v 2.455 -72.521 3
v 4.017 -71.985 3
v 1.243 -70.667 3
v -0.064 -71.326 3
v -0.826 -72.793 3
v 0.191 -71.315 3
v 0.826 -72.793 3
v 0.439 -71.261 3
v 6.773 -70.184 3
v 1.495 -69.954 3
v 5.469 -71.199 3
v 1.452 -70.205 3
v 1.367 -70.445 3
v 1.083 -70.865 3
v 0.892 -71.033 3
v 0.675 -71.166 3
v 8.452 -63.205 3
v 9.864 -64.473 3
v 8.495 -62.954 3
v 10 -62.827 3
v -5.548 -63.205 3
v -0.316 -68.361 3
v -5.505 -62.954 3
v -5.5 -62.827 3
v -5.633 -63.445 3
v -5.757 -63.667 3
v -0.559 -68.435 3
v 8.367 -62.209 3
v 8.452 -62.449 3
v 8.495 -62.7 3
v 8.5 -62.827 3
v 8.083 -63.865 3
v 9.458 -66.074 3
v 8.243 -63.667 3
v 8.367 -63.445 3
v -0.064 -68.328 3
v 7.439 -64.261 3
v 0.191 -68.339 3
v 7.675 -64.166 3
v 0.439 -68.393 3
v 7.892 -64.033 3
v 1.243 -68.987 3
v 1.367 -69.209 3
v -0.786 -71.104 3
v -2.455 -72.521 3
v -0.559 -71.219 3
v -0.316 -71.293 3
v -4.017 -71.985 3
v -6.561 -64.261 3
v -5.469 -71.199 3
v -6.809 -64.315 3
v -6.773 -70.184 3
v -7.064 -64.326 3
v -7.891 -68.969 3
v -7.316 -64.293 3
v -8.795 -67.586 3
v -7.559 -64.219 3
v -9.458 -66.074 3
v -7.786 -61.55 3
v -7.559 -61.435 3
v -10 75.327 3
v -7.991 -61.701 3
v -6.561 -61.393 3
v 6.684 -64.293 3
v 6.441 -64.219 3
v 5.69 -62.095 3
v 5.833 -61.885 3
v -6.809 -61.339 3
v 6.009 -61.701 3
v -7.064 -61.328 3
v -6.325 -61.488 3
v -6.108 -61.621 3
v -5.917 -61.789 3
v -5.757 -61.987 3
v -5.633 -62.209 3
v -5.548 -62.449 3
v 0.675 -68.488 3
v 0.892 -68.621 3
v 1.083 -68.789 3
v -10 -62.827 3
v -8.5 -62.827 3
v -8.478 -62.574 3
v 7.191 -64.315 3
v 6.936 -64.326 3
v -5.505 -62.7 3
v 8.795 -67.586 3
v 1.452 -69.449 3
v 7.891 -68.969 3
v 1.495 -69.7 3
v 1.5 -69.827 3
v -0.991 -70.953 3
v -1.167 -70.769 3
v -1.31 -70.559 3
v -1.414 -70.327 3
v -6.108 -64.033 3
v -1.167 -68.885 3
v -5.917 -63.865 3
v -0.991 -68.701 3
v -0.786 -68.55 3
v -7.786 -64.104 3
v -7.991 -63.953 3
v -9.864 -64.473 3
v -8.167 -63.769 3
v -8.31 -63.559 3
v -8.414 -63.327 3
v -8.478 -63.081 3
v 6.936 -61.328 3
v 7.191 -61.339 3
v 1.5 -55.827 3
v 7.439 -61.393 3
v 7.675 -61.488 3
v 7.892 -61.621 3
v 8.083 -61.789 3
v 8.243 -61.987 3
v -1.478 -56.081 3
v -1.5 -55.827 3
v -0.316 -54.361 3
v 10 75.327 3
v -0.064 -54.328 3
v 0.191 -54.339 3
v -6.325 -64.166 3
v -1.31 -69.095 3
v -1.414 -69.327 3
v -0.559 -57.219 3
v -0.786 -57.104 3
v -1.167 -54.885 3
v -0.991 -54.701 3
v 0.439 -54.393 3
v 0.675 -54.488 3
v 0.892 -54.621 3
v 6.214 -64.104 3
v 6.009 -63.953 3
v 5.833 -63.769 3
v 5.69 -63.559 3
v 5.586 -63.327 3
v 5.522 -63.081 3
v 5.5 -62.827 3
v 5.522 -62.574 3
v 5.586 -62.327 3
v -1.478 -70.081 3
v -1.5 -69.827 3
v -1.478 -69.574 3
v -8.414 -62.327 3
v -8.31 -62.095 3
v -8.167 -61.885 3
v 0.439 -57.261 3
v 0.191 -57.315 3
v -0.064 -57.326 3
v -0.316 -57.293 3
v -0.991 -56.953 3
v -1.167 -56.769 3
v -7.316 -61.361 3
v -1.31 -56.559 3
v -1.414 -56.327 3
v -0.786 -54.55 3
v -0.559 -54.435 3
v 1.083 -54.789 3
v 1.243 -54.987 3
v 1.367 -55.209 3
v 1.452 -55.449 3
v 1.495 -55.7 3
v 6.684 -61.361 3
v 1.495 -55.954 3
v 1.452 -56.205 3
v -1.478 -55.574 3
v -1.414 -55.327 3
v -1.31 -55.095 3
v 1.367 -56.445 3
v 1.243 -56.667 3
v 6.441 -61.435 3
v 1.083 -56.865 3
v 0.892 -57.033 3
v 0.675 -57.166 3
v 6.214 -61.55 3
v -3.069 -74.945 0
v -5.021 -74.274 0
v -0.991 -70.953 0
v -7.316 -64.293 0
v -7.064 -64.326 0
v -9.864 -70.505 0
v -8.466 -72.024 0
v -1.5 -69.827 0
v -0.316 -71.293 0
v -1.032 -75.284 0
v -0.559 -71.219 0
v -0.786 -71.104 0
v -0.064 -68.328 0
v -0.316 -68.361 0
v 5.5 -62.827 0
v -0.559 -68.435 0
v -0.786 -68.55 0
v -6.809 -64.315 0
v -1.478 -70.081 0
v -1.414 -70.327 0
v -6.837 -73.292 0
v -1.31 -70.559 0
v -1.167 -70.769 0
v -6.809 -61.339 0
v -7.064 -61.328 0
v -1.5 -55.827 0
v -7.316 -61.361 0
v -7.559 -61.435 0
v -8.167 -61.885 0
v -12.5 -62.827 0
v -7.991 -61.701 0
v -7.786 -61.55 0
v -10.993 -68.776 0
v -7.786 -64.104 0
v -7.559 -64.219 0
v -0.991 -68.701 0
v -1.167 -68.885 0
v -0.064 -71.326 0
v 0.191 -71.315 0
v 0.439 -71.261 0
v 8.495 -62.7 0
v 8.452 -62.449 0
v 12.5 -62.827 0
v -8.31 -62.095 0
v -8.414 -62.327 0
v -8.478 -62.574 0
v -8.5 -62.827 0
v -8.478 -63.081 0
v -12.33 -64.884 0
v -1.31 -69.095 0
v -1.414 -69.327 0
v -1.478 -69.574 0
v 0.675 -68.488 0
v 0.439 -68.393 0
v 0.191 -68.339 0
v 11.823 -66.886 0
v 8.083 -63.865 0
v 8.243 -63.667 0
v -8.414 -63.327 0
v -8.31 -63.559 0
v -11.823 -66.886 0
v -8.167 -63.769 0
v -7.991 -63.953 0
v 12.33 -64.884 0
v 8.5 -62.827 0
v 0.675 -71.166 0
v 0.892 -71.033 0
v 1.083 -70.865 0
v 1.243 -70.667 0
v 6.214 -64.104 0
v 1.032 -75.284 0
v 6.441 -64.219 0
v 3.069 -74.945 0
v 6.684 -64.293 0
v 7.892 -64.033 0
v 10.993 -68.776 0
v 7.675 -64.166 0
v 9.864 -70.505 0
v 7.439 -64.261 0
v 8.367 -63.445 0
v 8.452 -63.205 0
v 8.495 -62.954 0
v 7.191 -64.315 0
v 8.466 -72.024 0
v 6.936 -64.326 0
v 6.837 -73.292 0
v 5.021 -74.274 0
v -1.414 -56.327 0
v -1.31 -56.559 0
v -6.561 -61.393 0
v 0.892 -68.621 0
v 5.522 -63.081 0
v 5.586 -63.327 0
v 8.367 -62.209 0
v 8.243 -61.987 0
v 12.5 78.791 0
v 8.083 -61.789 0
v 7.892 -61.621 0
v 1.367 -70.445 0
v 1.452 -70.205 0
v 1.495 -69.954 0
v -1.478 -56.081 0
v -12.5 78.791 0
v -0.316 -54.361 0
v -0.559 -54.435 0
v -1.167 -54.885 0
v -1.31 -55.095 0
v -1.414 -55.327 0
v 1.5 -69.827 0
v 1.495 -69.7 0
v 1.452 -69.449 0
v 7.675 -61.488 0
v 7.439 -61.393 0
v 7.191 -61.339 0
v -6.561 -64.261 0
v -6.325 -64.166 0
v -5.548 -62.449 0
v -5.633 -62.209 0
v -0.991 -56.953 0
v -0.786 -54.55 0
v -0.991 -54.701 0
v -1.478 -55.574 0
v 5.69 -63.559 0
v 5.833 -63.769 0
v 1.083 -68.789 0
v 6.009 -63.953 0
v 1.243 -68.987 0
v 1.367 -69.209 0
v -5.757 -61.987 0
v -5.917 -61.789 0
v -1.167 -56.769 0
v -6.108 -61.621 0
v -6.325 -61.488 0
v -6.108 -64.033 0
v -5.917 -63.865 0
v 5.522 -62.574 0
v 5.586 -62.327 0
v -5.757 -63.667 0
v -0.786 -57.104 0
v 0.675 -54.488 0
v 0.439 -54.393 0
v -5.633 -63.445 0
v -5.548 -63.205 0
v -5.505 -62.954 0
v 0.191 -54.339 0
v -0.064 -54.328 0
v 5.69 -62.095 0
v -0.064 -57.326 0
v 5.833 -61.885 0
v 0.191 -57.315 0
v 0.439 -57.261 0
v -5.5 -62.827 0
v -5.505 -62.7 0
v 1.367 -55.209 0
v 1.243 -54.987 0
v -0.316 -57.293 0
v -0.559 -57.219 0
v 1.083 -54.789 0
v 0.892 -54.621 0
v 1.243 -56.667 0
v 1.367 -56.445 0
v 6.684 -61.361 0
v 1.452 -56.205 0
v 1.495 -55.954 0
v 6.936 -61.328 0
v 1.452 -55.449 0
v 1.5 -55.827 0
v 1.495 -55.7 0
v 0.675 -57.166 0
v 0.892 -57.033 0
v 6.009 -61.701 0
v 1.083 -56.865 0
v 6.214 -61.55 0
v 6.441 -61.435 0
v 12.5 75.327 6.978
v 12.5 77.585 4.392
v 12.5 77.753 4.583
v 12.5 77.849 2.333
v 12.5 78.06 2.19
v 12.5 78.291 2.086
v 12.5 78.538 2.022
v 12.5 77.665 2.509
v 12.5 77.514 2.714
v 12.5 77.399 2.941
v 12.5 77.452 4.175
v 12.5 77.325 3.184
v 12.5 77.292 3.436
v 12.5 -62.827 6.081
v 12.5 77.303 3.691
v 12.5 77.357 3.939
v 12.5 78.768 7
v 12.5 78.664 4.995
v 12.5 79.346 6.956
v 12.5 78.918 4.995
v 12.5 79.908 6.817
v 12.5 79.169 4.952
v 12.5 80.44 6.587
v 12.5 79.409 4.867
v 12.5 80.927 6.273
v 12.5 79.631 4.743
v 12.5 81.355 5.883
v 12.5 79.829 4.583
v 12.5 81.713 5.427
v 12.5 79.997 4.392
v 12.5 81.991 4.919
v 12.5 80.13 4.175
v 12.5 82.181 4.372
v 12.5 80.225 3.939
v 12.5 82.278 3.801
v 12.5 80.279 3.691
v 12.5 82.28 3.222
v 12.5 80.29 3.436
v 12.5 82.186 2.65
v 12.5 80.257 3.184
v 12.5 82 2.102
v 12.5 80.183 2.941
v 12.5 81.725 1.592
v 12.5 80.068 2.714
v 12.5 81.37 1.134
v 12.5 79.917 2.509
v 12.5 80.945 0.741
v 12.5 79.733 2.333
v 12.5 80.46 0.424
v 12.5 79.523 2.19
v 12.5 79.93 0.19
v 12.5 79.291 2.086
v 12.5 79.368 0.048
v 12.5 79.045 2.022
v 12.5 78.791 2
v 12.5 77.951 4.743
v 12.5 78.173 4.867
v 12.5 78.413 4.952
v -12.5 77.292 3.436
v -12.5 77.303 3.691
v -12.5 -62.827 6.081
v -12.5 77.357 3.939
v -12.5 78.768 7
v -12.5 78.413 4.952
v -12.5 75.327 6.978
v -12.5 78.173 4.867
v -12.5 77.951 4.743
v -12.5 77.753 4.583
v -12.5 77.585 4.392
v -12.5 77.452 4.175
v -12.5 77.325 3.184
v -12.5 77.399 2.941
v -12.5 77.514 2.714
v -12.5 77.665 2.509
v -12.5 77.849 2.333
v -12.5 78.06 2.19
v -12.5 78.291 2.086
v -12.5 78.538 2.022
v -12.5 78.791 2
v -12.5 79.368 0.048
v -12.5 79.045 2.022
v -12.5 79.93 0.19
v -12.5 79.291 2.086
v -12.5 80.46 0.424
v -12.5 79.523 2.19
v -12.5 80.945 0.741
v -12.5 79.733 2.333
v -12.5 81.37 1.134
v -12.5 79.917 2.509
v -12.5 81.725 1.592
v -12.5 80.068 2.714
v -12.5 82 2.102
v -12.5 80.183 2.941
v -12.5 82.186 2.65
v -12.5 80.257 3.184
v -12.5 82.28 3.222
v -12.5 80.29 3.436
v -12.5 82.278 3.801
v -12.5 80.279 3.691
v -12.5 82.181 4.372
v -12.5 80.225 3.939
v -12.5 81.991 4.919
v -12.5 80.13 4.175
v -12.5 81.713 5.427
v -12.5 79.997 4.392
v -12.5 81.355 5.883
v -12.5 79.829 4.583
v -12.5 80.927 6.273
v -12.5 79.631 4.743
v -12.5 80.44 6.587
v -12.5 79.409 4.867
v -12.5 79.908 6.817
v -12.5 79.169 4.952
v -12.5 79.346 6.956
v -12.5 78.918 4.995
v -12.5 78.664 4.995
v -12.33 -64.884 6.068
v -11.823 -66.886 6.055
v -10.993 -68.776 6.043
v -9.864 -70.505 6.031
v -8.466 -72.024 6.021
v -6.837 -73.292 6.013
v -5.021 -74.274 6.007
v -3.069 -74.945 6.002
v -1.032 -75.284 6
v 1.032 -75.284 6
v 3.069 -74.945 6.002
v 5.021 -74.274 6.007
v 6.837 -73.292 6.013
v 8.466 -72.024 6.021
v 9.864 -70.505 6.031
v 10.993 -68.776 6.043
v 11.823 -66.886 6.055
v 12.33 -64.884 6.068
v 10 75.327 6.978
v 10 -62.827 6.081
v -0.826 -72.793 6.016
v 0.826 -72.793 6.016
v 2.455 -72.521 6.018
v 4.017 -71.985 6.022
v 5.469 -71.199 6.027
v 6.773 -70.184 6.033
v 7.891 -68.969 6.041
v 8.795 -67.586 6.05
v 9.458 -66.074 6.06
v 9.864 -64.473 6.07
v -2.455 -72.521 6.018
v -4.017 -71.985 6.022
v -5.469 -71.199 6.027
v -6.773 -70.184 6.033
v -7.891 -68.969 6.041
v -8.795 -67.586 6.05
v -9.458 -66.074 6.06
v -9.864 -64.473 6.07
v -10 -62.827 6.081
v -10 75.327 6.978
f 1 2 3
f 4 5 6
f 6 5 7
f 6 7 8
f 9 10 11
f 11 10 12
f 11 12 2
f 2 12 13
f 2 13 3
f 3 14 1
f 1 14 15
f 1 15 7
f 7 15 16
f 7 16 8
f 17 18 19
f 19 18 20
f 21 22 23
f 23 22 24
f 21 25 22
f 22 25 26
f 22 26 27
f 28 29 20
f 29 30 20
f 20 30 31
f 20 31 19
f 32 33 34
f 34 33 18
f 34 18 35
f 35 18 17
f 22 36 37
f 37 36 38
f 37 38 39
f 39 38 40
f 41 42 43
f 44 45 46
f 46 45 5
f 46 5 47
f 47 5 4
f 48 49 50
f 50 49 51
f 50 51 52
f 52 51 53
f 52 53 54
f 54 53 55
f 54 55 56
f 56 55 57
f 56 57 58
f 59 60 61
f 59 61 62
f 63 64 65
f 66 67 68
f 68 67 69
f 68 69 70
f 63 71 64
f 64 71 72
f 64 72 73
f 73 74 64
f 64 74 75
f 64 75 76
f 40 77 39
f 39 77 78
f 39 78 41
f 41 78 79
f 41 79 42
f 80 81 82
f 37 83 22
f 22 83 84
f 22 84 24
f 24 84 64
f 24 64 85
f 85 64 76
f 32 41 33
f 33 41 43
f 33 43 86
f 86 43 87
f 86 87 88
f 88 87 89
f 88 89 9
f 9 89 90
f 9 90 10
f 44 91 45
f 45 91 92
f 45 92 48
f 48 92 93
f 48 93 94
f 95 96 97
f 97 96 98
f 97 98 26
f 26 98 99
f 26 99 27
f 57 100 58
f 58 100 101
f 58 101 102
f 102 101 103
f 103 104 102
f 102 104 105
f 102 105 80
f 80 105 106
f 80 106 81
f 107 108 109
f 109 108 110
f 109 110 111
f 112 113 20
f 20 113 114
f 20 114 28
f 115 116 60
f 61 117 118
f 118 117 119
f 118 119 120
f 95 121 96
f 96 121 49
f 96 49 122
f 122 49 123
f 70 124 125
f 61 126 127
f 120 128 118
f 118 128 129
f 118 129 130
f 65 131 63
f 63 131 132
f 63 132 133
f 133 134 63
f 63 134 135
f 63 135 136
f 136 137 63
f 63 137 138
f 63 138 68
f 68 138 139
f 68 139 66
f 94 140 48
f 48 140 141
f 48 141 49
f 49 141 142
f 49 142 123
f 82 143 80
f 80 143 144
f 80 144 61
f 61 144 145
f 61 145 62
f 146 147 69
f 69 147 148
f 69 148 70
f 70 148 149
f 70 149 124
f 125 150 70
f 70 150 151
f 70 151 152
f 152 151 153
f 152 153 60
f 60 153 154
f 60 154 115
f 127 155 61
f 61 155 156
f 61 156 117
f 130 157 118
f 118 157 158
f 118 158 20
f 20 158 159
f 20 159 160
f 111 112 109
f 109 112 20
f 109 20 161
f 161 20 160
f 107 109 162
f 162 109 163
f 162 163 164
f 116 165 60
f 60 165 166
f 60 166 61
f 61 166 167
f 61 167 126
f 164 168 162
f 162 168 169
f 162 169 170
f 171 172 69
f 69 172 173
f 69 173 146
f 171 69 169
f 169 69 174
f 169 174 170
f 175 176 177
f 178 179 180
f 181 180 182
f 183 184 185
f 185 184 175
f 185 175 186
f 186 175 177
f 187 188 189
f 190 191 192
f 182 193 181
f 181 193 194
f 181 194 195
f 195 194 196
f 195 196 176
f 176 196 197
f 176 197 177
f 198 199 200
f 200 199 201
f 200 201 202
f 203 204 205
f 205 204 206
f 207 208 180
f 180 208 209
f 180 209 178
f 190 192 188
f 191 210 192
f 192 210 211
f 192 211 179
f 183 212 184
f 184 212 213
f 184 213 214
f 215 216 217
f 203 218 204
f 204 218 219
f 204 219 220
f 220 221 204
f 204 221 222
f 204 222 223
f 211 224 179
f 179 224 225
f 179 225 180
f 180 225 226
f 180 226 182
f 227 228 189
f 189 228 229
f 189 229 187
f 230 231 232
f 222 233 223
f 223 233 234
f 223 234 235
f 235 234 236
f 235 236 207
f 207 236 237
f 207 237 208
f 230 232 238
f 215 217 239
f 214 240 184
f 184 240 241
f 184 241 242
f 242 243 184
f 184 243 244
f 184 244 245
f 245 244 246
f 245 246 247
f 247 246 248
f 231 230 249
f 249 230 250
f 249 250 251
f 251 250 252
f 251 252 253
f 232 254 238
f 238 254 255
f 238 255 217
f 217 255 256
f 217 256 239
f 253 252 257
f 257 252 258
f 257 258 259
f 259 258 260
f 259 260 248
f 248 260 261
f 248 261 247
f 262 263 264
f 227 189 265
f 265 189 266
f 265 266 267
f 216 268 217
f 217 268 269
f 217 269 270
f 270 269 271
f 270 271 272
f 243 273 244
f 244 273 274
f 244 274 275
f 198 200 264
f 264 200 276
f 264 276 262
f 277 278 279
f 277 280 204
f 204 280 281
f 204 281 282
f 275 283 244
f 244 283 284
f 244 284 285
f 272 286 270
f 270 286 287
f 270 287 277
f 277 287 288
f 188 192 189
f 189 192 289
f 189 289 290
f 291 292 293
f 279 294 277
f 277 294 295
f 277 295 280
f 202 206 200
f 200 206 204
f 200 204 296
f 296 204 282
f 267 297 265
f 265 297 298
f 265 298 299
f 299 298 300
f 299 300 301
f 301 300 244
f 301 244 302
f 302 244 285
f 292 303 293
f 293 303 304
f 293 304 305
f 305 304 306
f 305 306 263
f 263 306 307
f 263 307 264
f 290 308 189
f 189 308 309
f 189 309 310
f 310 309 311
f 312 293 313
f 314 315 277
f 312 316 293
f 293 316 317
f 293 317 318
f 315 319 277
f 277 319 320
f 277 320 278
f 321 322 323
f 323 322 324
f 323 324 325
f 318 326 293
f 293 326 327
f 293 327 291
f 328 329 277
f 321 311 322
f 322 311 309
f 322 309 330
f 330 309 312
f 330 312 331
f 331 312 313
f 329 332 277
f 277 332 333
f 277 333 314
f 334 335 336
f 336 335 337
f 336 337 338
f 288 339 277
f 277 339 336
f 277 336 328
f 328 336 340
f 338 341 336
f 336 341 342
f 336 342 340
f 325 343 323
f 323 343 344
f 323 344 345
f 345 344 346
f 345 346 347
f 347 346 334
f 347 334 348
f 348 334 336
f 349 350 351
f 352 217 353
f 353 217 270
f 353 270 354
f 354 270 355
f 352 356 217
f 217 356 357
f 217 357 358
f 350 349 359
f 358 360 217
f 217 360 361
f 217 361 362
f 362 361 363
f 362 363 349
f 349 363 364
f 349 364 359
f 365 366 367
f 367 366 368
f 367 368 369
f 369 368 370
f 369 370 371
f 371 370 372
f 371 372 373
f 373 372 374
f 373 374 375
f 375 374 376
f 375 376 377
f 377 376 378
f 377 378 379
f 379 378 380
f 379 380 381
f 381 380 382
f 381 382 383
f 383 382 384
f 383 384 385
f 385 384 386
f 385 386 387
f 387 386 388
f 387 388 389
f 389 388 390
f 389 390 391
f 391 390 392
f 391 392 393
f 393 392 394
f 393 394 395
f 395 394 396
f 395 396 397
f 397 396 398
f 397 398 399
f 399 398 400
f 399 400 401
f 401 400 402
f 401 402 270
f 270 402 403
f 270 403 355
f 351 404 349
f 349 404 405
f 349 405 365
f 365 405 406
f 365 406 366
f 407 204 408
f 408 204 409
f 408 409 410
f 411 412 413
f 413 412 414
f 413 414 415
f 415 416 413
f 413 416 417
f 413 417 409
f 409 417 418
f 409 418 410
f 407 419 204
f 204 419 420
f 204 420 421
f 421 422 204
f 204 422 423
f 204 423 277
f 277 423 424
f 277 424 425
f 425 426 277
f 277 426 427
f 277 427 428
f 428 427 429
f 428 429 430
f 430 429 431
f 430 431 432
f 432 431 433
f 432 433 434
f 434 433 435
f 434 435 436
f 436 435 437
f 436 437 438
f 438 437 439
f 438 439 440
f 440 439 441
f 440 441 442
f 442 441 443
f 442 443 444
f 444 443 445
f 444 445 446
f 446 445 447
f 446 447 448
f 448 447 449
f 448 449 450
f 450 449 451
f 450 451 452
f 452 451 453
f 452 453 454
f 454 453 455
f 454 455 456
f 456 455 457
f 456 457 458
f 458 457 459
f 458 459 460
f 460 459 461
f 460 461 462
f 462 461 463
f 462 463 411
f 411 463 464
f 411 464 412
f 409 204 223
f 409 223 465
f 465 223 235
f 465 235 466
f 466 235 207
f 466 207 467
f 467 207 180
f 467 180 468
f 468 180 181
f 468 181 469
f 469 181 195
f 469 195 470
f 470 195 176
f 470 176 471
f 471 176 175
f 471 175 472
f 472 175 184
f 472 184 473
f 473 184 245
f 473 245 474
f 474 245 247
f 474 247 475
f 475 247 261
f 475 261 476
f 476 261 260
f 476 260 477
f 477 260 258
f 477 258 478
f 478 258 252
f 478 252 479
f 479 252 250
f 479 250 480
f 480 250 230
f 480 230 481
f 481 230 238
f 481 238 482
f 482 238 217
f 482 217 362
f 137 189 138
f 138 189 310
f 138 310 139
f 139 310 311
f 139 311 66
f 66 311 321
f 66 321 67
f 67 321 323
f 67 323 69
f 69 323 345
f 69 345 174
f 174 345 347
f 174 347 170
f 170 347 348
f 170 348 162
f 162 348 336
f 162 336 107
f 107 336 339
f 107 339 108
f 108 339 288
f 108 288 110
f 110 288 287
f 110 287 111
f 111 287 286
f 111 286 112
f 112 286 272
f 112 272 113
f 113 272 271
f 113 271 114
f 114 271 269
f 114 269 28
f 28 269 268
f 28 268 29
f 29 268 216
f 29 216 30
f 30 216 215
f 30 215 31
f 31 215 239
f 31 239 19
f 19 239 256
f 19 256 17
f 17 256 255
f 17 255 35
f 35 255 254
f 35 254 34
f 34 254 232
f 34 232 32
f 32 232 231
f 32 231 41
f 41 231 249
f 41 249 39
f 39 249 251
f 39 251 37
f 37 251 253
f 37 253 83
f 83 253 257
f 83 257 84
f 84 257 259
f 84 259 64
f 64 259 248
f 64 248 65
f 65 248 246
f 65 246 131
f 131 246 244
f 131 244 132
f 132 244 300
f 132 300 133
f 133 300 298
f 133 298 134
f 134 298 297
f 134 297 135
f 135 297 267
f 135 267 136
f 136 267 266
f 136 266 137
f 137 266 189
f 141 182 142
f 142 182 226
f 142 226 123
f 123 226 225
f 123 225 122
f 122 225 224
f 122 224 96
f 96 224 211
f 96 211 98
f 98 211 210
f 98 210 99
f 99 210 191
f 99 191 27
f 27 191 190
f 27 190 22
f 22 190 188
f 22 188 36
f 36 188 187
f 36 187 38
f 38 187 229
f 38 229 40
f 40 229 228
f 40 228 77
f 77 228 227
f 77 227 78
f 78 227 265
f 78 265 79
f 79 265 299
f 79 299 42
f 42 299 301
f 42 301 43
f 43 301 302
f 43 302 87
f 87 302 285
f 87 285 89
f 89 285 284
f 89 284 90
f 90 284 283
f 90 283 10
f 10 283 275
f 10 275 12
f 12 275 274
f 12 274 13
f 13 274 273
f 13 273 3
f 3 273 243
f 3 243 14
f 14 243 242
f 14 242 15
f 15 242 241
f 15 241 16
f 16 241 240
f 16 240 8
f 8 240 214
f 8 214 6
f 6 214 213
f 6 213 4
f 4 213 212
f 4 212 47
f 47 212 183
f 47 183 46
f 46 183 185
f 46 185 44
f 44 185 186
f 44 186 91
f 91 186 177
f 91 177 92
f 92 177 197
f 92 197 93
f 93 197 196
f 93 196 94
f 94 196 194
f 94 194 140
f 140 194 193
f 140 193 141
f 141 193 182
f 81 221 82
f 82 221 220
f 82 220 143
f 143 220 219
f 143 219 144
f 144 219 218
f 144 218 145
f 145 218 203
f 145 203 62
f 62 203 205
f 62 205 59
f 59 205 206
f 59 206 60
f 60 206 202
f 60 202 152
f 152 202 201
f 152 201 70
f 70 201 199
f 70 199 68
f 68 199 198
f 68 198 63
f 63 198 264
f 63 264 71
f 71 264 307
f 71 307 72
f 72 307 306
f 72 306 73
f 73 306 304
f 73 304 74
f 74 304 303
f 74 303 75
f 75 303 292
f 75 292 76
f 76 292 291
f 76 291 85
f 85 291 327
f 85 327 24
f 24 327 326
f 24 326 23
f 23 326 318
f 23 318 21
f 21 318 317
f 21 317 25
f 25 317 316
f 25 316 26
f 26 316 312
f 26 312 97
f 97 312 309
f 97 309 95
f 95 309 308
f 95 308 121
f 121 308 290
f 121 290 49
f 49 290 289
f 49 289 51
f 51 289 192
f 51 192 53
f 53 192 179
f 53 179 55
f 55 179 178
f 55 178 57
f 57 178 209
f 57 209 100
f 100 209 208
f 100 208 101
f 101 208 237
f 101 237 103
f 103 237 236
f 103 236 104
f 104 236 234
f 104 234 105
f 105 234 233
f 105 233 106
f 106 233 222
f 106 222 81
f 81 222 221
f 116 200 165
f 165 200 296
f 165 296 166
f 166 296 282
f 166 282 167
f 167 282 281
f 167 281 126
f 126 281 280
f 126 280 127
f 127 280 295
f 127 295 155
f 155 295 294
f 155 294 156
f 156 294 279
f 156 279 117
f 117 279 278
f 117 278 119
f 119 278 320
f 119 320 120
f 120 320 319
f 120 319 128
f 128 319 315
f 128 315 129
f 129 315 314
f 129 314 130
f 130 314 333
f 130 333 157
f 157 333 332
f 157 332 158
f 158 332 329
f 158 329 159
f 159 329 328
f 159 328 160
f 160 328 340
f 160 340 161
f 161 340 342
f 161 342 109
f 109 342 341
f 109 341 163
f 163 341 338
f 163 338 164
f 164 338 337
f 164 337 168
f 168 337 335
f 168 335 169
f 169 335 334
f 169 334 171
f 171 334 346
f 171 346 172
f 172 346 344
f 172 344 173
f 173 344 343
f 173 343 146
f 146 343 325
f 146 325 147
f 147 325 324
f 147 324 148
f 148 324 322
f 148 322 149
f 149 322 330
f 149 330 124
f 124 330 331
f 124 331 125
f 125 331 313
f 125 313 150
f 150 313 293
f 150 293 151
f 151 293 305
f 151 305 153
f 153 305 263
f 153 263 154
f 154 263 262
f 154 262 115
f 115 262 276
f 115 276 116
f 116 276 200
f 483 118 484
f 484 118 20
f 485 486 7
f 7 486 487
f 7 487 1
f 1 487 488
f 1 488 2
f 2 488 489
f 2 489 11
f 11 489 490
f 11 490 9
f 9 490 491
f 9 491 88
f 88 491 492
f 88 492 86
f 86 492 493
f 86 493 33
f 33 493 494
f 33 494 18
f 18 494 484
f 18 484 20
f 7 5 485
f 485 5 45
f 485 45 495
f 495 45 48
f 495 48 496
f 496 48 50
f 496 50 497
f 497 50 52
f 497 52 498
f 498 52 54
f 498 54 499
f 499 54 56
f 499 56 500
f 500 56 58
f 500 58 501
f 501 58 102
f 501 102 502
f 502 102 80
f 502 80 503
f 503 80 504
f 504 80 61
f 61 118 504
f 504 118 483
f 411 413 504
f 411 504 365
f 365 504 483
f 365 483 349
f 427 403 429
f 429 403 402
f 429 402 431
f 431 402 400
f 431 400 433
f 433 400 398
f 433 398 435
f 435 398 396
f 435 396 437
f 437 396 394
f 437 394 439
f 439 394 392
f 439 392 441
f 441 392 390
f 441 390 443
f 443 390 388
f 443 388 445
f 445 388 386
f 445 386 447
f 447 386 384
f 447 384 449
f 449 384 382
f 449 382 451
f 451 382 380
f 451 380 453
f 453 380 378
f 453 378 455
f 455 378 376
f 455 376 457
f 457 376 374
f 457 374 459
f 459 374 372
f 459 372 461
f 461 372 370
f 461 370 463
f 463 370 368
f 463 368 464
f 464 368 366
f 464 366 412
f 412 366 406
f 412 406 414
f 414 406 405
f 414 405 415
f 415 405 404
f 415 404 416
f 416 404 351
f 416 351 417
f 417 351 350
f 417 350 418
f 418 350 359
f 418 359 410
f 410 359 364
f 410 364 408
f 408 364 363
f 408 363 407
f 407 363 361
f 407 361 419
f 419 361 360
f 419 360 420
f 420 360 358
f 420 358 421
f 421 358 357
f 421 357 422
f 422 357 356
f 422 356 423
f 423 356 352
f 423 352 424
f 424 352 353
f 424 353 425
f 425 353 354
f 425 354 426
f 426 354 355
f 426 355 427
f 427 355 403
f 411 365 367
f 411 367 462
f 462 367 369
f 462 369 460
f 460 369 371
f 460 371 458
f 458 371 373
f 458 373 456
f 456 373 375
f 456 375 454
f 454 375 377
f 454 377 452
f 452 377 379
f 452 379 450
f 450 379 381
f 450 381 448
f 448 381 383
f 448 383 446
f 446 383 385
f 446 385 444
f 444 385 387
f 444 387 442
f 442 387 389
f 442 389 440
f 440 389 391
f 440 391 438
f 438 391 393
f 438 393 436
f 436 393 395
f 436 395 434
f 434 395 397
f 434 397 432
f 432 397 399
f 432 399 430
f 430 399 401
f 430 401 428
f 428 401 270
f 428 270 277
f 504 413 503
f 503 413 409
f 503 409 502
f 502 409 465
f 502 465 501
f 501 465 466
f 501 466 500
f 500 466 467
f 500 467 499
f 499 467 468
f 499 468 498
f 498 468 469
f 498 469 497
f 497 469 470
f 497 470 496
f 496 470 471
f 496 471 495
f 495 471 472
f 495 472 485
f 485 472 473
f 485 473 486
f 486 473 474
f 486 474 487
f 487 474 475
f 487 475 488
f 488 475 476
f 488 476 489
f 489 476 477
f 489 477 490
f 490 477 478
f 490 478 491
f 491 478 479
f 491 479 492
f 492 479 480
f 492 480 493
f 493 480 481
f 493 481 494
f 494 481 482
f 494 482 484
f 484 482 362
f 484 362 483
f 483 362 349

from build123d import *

# Parameters (mm, degrees)
SKETCH_1_R          = 1.5
EXTRUDE_1_DEPTH     = 3
EXTRUDE_3_DEPTH     = 25
SKETCH_4_R          = 1.5
EXTRUDE_5_DEPTH     = 25
CUT_EXTRUDE_1_DEPTH = 25


with BuildPart() as part:
    # 草图1 → 凸台-拉伸1 (new body)
    with BuildSketch(Plane.XY):
        with BuildLine():
            Line((-12.5, -62.82700984), (-12.5, 75.32700984))
            Line((-12.5, 75.32700984), (12.5, 75.32700984))
            Line((12.5, 75.32700984), (12.5, -62.82700984))
            ThreePointArc((12.5, -62.82700984), (0, -75.32700984), (-12.5, -62.82700984))
        make_face()
        with Locations((7, -62.82700984)):
            Circle(SKETCH_1_R, mode=Mode.SUBTRACT)
        with Locations((0, -69.82700984)):
            Circle(SKETCH_1_R, mode=Mode.SUBTRACT)
        with Locations((-7, -62.82700984)):
            Circle(SKETCH_1_R, mode=Mode.SUBTRACT)
        with Locations((0, -55.82700984)):
            Circle(SKETCH_1_R, mode=Mode.SUBTRACT)
    extrude(amount=EXTRUDE_1_DEPTH)

    # 草图3 → 凸台-拉伸3 (add)
    with BuildSketch(Plane.XY.offset(3)):
        with BuildLine():
            Line((10, -62.82700984), (10, 72.82700984))
            Line((10, 72.82700984), (10, 75.32700984))
            Line((10, 75.32700984), (12.5, 75.32700984))
            Line((12.5, 75.32700984), (12.5, -62.82700984))
            ThreePointArc((12.5, -62.82700984), (0, -75.32700984), (-12.5, -62.82700984))
            Line((-12.5, -62.82700984), (-12.5, 75.32700984))
            Line((-12.5, 75.32700984), (-10, 75.32700984))
            Line((-10, 75.32700984), (-10, 72.82700984))
            Line((-10, 72.82700984), (-10, -62.82700984))
            ThreePointArc((-10, -62.82700984), (0, -72.82700984), (10, -62.82700984))
        make_face()
    extrude(amount=EXTRUDE_3_DEPTH)

    # 草图4 → 凸台-拉伸5 (add)
    with BuildSketch(Plane(origin=(12.5, 0, 0), x_dir=(0, 0, -1), z_dir=(1, 0, 0))):
        with BuildLine():
            Line((-3, 75.32700984), (0, 75.32700984))
            Line((0, 75.32700984), (0, 78.791111455))
            ThreePointArc((0, 78.791111455), (-3.511355462, 82.291093034), (-6.999926316, 78.768400651))
            Line((-6.999926316, 78.768400651), (-6.977595346, 75.32700984))
            Line((-6.977595346, 75.32700984), (-3.5, 75.32700984))
            Line((-3.5, 75.32700984), (-3, 75.32700984))
        make_face()
        with Locations((-3.5, 78.791111455)):
            Circle(SKETCH_4_R, mode=Mode.SUBTRACT)
    extrude(amount=-EXTRUDE_5_DEPTH)

    # 草图5 → 切除-拉伸1 (cut)
    with BuildSketch(Plane(origin=(12.5, 0, 0), x_dir=(0, 0, -1), z_dir=(1, 0, 0))):
        Polygon((-6, -75.32700984), (-6.977595346, 75.32700984), (-30.364009186, 75.32700984), (-30.364009186, -75.32700984), align=None)
    extrude(amount=-CUT_EXTRUDE_1_DEPTH, mode=Mode.SUBTRACT)


solid = part.part
